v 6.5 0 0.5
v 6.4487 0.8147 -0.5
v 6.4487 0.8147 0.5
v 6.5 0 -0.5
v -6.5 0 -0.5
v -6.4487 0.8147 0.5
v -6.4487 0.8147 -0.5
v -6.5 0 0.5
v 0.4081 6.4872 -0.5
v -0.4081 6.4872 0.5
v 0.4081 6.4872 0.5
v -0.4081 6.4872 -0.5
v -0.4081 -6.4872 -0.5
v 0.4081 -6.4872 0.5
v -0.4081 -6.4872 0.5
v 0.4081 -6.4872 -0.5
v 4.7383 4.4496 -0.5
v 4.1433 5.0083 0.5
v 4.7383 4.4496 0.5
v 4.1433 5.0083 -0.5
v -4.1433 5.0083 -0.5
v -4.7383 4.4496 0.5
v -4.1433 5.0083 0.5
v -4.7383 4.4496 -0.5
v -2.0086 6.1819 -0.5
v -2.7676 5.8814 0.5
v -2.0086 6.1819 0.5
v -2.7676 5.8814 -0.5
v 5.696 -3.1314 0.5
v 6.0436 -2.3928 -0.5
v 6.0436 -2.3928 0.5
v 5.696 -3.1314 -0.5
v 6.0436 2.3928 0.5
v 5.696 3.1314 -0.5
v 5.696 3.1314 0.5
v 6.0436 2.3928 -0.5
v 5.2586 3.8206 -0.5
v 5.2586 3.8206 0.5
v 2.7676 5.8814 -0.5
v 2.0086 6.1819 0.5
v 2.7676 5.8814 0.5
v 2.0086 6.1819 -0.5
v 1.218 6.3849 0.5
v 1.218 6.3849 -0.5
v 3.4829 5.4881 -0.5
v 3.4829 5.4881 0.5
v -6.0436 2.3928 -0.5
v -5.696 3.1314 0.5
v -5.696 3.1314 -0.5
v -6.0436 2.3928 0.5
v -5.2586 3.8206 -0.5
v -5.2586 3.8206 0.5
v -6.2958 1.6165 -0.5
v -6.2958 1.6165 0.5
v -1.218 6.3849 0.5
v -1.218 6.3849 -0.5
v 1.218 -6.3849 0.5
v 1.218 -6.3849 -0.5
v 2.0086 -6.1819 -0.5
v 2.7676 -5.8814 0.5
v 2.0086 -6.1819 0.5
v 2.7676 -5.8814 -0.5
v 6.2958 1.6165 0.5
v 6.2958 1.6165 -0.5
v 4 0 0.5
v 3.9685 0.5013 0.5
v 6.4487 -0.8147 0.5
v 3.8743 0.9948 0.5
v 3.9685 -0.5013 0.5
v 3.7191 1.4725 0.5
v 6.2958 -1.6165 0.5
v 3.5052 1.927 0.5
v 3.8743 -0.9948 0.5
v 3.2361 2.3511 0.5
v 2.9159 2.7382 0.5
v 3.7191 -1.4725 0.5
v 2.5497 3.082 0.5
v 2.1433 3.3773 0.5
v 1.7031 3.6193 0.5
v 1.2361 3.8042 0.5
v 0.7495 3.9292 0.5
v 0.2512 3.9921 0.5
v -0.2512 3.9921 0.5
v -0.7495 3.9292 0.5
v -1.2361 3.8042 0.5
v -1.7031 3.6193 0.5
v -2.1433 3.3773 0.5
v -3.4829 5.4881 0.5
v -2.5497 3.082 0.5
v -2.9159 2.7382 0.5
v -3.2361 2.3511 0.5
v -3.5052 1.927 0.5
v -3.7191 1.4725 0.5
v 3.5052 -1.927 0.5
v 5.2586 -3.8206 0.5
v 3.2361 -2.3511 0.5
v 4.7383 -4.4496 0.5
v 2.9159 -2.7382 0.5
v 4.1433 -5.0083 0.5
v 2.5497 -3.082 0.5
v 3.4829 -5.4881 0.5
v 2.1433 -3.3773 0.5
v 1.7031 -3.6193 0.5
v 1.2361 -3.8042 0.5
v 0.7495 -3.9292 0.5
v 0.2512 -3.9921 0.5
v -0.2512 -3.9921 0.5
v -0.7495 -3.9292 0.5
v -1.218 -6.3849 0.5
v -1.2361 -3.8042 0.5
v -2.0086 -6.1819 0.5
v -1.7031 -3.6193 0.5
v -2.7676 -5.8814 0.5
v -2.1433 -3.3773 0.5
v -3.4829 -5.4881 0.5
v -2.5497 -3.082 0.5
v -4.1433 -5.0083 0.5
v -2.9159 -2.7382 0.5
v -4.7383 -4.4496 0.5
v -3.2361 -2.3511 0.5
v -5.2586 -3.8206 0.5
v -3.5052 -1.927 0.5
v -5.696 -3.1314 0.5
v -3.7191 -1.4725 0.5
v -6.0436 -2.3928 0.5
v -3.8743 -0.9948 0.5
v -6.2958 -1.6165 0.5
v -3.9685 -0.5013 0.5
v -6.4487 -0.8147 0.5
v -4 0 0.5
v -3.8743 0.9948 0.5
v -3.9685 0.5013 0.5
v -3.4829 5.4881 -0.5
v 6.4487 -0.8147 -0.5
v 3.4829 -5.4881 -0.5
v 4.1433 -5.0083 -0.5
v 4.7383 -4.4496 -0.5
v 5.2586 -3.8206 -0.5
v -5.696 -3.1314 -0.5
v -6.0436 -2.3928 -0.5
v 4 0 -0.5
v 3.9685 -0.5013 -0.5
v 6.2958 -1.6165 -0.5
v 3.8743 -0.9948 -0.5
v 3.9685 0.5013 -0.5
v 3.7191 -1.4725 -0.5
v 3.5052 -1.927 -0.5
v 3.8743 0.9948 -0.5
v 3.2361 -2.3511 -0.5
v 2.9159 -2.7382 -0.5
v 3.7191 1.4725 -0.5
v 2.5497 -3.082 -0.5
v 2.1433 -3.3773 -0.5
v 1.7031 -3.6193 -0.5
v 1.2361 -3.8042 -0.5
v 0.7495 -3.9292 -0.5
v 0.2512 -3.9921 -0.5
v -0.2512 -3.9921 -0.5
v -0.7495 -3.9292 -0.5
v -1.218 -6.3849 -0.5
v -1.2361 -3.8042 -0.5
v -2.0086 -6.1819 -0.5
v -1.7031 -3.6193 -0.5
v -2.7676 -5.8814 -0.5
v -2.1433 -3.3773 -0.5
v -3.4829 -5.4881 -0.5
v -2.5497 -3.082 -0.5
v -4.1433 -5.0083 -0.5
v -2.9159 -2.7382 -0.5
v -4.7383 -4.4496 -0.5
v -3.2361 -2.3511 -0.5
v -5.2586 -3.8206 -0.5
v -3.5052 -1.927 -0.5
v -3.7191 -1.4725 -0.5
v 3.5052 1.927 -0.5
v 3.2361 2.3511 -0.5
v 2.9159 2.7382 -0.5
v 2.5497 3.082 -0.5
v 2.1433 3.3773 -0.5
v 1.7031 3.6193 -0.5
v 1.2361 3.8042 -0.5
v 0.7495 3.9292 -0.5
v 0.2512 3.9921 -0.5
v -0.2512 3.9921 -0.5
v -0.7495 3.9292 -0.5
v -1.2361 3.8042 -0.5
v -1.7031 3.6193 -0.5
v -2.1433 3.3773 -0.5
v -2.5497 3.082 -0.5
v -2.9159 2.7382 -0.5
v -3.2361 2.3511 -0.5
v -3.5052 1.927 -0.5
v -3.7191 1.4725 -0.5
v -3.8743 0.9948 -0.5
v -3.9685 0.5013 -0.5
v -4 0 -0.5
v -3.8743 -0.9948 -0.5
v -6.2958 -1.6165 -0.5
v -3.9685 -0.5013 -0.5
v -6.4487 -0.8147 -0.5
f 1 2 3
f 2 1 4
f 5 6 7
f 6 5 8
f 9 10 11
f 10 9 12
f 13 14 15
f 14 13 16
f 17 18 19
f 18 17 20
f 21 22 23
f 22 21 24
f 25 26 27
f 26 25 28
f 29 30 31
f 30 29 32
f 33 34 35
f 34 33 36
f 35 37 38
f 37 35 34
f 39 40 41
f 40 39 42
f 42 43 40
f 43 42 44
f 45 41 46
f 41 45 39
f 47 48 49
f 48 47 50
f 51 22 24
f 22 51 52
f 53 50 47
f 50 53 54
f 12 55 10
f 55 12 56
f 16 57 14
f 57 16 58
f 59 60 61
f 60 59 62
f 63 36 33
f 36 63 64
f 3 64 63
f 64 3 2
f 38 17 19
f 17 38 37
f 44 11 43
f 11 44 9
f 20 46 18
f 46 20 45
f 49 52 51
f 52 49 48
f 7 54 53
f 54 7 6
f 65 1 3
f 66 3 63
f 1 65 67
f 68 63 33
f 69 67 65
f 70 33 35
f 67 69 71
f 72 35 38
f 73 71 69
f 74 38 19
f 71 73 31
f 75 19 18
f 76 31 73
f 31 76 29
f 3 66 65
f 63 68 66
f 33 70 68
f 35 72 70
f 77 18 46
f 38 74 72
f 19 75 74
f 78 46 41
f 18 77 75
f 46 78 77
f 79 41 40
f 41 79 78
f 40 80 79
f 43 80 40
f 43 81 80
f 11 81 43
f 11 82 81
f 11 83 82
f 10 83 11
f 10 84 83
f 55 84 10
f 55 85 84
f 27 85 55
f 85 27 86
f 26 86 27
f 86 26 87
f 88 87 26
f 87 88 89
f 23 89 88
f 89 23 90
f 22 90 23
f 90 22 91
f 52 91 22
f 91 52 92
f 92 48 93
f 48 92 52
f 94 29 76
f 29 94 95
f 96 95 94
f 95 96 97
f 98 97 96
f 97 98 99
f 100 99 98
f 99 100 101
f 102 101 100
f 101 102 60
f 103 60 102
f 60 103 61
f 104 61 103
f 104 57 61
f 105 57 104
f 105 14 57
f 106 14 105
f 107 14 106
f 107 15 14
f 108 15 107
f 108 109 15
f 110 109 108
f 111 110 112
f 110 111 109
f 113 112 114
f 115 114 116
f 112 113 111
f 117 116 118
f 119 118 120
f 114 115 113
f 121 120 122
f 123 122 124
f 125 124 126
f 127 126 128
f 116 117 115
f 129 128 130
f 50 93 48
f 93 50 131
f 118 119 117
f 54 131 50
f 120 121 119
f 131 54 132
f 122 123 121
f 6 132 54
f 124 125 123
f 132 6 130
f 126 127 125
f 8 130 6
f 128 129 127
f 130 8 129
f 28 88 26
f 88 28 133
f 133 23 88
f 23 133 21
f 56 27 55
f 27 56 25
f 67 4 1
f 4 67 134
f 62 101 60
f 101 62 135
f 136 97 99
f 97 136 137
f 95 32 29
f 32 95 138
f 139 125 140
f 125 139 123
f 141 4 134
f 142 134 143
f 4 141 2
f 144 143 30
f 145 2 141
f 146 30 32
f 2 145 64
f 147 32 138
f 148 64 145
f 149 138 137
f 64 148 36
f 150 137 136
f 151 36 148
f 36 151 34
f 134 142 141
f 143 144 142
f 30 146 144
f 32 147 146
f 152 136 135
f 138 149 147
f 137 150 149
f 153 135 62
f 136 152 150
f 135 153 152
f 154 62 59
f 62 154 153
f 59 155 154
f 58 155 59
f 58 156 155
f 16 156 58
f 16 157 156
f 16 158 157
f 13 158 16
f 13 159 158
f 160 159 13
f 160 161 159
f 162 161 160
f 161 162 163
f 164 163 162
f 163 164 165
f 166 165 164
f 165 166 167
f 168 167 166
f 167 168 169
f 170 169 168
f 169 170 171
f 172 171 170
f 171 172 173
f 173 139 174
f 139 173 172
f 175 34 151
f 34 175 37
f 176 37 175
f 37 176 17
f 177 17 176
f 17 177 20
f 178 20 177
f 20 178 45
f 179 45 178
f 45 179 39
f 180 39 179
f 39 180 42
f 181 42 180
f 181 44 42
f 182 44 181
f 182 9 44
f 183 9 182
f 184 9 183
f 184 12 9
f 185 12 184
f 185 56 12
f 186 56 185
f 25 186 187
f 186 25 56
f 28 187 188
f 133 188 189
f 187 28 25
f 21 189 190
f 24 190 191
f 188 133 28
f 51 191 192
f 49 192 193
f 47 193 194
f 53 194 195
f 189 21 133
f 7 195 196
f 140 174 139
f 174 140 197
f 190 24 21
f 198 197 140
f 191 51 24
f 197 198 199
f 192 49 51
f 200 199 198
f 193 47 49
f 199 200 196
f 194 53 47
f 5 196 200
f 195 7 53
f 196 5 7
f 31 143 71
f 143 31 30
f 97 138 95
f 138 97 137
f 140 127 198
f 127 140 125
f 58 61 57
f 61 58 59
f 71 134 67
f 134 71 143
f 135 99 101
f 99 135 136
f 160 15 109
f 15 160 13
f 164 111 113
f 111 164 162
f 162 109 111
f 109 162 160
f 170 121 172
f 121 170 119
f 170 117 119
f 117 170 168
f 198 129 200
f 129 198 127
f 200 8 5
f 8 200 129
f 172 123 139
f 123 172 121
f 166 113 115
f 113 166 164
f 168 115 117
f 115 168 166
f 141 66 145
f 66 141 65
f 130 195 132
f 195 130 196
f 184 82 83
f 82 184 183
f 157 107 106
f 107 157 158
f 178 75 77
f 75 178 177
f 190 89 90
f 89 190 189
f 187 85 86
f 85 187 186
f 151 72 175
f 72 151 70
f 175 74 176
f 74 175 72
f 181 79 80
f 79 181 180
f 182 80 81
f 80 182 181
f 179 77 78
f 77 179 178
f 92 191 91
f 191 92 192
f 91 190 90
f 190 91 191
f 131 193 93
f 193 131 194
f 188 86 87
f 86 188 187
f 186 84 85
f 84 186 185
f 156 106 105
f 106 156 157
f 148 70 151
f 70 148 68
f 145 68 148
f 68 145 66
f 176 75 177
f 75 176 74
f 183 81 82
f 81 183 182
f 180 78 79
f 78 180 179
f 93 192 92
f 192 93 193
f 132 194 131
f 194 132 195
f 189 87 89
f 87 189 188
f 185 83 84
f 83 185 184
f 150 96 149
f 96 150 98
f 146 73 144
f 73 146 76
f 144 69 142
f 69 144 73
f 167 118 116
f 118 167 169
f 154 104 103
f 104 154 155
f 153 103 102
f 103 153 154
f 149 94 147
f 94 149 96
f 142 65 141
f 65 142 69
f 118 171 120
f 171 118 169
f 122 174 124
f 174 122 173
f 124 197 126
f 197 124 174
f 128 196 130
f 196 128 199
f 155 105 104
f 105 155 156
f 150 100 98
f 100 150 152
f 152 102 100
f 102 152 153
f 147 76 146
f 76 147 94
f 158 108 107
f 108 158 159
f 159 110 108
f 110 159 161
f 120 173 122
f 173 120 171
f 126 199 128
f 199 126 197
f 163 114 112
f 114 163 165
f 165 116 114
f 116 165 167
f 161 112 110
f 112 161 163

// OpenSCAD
$fn = 50;


difference() {
	union() {
		translate(v = [0, 0, -0.5000000000]) {
			cylinder(h = 1, r = 6.5000000000);
		}
	}
	union() {
		translate(v = [0, 0, -100.0000000000]) {
			cylinder(h = 200, r = 4.0000000000);
		}
	}
}
